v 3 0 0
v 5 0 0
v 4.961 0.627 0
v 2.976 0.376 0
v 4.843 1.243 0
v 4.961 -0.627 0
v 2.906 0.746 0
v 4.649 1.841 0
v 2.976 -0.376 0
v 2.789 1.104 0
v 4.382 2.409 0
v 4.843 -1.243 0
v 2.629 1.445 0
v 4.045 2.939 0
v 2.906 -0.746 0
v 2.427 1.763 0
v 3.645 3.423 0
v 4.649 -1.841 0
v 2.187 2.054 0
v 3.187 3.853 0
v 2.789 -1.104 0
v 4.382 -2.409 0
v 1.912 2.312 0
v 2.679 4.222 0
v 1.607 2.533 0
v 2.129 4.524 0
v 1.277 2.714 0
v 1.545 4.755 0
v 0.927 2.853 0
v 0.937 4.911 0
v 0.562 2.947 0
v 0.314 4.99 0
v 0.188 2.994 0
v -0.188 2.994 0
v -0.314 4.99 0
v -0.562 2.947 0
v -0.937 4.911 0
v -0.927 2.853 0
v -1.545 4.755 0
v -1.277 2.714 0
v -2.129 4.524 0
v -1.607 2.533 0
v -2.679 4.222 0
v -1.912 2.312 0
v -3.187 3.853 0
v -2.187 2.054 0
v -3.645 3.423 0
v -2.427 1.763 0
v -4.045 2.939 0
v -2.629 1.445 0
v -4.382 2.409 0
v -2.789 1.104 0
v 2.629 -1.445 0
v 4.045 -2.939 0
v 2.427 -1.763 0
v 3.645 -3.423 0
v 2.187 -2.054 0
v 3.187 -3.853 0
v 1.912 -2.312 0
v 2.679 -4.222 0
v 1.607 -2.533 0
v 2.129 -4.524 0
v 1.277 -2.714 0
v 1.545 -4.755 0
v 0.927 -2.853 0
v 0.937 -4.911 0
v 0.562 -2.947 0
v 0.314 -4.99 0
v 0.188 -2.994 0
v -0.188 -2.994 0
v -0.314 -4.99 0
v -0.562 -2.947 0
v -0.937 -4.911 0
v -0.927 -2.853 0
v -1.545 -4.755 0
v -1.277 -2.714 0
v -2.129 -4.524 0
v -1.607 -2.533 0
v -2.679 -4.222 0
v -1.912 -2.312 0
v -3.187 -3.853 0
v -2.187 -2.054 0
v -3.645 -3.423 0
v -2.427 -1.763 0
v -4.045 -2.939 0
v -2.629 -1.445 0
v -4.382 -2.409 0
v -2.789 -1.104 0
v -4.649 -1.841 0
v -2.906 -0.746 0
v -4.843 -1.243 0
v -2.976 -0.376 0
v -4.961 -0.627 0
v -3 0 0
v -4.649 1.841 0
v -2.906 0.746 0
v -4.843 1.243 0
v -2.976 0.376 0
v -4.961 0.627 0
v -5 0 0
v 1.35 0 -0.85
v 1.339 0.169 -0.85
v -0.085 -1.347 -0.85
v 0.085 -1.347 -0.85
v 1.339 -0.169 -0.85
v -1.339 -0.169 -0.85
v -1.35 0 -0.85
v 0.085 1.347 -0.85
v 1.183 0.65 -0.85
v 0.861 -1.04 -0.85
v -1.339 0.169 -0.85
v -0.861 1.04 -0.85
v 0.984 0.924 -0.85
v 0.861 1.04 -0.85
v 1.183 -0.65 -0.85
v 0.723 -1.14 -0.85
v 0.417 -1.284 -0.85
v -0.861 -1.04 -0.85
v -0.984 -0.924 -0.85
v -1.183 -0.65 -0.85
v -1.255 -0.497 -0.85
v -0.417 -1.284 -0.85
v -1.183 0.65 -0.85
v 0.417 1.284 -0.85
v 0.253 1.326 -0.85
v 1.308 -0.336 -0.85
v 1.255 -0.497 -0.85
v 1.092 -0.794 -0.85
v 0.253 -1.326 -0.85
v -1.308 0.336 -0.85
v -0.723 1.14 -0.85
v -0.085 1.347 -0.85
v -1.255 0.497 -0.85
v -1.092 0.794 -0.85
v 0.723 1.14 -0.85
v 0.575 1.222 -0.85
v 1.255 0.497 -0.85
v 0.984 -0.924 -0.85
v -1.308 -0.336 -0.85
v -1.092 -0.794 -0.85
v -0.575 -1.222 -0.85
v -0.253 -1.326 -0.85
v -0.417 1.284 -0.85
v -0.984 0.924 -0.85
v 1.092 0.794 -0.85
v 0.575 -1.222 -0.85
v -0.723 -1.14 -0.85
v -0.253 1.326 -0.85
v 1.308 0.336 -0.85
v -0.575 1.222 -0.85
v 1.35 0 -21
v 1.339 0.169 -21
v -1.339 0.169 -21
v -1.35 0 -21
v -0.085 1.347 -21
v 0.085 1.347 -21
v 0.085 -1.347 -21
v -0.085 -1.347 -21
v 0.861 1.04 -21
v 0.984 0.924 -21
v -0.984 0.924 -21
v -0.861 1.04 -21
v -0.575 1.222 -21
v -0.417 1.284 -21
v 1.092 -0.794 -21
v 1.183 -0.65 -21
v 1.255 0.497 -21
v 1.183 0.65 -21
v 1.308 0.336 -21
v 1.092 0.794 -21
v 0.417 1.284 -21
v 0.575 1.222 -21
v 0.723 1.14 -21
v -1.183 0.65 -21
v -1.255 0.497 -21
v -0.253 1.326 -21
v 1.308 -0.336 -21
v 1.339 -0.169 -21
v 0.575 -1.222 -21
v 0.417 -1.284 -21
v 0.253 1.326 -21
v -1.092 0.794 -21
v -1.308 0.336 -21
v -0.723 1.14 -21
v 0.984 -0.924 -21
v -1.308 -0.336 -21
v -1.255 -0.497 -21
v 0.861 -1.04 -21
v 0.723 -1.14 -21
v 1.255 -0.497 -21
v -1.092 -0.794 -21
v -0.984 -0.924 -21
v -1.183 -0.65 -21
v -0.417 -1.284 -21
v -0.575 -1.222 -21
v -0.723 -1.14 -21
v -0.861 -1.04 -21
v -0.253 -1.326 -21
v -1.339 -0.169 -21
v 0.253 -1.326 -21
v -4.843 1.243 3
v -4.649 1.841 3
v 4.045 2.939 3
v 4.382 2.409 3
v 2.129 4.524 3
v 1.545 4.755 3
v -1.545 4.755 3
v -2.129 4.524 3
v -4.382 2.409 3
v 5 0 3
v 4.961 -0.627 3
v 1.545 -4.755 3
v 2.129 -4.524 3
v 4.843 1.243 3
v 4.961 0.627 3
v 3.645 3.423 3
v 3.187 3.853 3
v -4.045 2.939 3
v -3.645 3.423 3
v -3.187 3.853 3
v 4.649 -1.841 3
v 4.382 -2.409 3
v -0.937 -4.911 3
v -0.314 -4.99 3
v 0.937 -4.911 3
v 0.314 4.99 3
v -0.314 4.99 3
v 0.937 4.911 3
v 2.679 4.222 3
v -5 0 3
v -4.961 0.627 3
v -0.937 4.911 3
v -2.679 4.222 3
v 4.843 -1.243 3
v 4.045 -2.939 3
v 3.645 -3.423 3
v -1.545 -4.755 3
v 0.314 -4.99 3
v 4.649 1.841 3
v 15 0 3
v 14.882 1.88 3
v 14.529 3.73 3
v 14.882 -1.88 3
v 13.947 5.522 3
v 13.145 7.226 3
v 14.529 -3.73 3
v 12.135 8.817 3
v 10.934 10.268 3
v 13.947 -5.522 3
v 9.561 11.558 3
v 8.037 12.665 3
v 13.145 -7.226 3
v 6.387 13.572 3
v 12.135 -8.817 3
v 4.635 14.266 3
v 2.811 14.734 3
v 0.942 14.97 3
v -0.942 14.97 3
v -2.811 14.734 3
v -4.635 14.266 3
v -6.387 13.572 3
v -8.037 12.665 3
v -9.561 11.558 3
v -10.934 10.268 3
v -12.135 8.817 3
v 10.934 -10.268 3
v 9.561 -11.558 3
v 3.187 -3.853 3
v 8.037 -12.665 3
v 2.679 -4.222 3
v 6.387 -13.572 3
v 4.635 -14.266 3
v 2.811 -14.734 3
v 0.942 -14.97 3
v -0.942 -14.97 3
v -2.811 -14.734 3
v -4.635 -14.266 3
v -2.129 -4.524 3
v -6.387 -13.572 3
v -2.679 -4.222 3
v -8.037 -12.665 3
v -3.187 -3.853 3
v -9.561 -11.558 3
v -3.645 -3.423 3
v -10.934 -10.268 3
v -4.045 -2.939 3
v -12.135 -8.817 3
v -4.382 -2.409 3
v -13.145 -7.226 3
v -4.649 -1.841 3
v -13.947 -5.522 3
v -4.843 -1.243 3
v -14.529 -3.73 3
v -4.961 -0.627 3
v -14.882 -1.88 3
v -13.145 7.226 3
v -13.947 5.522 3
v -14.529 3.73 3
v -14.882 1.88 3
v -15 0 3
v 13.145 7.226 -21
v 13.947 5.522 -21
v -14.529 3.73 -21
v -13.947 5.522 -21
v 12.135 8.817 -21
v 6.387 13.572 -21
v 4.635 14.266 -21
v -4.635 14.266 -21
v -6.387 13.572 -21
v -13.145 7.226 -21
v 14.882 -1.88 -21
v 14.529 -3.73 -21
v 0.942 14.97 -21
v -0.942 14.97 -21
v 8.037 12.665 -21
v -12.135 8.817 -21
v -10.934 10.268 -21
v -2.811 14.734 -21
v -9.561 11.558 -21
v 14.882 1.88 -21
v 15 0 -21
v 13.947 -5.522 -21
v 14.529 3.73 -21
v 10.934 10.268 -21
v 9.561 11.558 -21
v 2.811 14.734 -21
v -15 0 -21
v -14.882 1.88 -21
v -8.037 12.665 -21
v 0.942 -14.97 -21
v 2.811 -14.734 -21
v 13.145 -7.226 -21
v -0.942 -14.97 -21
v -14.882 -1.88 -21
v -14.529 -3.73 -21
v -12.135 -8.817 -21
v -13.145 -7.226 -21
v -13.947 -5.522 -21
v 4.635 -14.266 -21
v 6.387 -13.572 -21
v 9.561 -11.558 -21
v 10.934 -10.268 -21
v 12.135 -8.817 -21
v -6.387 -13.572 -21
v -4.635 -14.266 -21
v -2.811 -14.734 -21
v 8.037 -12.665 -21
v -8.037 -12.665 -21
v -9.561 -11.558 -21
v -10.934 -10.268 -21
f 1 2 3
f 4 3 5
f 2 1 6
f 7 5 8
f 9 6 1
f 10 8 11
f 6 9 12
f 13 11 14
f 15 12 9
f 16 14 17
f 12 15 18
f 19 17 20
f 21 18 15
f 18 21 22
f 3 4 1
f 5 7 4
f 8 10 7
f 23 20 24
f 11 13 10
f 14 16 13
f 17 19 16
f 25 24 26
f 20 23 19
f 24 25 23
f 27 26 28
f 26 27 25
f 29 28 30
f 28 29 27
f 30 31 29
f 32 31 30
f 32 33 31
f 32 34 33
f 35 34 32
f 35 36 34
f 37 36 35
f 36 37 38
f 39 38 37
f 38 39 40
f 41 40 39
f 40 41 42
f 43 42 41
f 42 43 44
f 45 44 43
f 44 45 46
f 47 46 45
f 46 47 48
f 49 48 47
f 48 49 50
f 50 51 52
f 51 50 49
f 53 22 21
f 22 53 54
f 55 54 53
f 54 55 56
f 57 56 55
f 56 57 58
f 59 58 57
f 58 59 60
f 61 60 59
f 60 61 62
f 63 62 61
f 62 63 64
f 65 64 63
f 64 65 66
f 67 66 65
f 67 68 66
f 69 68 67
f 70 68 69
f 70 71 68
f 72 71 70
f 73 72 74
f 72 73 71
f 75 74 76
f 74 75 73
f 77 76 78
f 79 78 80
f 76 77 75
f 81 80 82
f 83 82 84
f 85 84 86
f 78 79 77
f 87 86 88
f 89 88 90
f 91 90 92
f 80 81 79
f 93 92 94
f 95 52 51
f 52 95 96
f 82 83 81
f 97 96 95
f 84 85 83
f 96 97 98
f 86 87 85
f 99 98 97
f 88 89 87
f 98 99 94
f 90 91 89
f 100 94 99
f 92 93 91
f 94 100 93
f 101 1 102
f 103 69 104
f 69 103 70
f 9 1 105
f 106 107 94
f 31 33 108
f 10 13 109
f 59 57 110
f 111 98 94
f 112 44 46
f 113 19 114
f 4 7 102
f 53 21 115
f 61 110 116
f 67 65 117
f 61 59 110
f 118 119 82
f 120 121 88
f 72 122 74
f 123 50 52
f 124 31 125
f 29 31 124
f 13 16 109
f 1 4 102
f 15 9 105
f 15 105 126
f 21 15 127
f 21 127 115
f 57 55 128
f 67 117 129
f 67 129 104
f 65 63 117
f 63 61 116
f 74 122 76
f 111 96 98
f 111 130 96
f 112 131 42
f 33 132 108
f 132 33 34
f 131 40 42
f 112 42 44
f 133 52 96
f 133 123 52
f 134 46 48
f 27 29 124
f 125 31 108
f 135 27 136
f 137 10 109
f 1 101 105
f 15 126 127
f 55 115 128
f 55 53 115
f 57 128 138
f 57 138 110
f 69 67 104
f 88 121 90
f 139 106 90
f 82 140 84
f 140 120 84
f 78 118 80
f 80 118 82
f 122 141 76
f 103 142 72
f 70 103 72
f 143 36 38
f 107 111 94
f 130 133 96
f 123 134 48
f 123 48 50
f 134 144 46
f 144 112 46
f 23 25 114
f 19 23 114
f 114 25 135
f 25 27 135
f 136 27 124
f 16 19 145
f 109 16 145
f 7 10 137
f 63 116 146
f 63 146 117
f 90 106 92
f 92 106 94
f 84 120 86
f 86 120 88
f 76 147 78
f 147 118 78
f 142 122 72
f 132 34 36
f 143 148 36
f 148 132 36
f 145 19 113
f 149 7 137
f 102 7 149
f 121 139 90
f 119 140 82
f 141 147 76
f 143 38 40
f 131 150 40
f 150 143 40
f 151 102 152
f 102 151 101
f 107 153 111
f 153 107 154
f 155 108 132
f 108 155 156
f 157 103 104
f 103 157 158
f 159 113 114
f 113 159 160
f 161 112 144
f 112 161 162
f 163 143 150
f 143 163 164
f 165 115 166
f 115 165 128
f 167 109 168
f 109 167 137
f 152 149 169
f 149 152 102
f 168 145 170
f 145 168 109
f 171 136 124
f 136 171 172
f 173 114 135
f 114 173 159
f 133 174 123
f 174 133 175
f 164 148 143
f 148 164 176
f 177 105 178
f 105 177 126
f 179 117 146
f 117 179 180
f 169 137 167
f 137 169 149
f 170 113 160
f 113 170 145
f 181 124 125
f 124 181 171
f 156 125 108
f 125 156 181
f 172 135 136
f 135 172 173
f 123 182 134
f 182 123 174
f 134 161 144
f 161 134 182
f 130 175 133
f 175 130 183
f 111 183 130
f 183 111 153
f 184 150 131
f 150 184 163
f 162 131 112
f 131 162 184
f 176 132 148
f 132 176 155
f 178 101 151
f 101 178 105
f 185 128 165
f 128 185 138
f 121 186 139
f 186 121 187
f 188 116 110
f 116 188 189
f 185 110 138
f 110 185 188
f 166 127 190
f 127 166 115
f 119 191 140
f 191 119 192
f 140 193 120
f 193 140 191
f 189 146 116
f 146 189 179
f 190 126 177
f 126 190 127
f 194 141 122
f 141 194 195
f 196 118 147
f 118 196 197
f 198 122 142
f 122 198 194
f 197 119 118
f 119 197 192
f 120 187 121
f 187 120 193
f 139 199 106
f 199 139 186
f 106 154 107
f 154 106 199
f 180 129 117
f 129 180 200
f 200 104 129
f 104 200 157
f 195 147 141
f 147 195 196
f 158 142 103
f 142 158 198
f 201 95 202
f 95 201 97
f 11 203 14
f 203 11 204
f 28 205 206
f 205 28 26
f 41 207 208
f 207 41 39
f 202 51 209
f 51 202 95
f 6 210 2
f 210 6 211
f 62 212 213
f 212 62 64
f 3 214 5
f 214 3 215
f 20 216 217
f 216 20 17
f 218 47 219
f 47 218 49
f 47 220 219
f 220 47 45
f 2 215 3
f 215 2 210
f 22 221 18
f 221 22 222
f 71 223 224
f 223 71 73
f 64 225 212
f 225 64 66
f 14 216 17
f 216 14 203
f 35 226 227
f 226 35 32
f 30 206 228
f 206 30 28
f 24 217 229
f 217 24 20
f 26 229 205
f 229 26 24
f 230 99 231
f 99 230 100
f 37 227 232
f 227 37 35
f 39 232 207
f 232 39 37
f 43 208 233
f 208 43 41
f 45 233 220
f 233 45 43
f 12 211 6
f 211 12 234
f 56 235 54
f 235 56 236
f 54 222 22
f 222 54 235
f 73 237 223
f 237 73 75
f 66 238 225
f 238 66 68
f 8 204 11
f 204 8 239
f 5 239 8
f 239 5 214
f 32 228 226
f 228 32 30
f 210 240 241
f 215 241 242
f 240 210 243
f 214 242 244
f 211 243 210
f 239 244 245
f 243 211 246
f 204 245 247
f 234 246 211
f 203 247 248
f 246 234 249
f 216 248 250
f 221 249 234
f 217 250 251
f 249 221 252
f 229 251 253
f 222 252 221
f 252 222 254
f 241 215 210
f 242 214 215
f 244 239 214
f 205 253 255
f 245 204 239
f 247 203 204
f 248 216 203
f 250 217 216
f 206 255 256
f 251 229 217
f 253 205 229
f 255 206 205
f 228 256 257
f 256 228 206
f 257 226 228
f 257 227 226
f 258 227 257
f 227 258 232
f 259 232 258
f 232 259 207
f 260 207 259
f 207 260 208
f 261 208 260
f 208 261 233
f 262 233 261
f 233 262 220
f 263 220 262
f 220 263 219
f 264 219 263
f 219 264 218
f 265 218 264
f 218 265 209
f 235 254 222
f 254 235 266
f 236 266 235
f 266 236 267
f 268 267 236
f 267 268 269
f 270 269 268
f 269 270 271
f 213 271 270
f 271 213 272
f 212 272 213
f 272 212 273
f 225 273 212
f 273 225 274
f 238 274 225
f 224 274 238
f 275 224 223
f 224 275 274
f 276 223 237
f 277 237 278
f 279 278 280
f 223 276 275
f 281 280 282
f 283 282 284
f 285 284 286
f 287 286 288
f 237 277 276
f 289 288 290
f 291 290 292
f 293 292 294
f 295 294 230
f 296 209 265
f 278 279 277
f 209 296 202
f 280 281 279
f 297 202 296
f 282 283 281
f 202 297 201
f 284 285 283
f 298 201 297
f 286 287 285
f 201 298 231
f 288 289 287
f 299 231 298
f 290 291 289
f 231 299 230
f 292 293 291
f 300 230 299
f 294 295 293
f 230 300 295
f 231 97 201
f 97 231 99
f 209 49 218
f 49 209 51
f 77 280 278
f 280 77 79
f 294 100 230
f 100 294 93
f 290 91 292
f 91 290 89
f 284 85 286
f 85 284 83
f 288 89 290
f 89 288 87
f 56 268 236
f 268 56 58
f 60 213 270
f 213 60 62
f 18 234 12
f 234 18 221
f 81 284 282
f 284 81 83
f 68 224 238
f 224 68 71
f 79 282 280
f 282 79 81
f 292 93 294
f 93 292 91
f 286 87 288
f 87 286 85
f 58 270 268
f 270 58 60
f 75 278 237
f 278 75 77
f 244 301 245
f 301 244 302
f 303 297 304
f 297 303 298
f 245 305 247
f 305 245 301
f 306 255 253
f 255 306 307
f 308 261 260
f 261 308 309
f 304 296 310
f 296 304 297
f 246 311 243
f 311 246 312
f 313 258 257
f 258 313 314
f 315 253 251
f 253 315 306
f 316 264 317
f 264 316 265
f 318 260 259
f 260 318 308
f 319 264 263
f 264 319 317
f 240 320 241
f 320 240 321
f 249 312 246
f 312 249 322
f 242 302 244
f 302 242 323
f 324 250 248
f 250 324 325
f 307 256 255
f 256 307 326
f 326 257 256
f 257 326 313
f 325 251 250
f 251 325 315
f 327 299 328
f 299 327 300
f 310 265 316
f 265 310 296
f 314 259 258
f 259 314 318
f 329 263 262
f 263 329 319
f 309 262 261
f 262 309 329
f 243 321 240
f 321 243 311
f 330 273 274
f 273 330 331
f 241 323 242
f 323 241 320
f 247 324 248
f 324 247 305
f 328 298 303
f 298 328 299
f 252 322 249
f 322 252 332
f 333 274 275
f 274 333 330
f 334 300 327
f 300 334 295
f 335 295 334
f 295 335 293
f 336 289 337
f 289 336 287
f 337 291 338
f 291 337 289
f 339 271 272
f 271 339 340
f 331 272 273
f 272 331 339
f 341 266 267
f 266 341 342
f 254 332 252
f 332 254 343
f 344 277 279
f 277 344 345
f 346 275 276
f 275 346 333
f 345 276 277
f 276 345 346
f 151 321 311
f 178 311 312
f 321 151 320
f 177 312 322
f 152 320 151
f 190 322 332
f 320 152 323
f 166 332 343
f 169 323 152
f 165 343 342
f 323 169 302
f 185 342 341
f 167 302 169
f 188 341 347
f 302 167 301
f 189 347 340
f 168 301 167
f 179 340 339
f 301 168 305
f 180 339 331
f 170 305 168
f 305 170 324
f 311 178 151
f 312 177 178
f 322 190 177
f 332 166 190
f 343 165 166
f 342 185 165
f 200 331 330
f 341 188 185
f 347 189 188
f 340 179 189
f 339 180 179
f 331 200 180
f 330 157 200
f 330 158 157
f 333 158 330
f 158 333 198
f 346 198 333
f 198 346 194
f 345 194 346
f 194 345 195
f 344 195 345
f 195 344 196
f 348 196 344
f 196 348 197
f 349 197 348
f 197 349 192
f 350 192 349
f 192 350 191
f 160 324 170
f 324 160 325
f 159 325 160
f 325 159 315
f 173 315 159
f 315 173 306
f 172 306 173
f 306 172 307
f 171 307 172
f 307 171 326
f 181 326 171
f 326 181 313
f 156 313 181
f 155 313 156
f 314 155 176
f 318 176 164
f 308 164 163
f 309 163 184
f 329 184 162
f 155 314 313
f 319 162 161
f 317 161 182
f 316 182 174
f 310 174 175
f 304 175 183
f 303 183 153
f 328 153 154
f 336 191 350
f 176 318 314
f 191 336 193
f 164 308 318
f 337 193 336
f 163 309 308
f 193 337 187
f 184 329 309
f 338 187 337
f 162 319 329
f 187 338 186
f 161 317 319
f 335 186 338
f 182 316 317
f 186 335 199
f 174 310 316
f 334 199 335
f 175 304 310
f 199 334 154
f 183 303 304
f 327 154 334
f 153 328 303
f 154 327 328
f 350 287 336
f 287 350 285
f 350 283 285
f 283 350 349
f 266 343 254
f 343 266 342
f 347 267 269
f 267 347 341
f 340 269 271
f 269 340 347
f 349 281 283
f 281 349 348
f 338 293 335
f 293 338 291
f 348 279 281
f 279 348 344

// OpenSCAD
$fn = 50;


difference() {
	union() {
		translate(v = [0, 0, -21.0000000000]) {
			cylinder(h = 24, r = 15.0000000000);
		}
	}
	union() {
		translate(v = [0, 0, 0]) {
			rotate(a = [0, 0, 0]) {
				difference() {
					union() {
						translate(v = [0, 0, -24.0000000000]) {
							cylinder(h = 24, r = 1.0000000000);
						}
						translate(v = [0, 0, -0.8500000000]) {
							cylinder(h = 0.8500000000, r1 = 1.3500000000, r2 = 3.0000000000);
						}
						translate(v = [0, 0, -24.0000000000]) {
							cylinder(h = 24, r = 1.3500000000);
						}
						translate(v = [0, 0, -24.0000000000]) {
							cylinder(h = 24, r = 1.0000000000);
						}
					}
					union();
				}
			}
		}
		#cylinder(h = 3, r = 5.0000000000);
	}
}
